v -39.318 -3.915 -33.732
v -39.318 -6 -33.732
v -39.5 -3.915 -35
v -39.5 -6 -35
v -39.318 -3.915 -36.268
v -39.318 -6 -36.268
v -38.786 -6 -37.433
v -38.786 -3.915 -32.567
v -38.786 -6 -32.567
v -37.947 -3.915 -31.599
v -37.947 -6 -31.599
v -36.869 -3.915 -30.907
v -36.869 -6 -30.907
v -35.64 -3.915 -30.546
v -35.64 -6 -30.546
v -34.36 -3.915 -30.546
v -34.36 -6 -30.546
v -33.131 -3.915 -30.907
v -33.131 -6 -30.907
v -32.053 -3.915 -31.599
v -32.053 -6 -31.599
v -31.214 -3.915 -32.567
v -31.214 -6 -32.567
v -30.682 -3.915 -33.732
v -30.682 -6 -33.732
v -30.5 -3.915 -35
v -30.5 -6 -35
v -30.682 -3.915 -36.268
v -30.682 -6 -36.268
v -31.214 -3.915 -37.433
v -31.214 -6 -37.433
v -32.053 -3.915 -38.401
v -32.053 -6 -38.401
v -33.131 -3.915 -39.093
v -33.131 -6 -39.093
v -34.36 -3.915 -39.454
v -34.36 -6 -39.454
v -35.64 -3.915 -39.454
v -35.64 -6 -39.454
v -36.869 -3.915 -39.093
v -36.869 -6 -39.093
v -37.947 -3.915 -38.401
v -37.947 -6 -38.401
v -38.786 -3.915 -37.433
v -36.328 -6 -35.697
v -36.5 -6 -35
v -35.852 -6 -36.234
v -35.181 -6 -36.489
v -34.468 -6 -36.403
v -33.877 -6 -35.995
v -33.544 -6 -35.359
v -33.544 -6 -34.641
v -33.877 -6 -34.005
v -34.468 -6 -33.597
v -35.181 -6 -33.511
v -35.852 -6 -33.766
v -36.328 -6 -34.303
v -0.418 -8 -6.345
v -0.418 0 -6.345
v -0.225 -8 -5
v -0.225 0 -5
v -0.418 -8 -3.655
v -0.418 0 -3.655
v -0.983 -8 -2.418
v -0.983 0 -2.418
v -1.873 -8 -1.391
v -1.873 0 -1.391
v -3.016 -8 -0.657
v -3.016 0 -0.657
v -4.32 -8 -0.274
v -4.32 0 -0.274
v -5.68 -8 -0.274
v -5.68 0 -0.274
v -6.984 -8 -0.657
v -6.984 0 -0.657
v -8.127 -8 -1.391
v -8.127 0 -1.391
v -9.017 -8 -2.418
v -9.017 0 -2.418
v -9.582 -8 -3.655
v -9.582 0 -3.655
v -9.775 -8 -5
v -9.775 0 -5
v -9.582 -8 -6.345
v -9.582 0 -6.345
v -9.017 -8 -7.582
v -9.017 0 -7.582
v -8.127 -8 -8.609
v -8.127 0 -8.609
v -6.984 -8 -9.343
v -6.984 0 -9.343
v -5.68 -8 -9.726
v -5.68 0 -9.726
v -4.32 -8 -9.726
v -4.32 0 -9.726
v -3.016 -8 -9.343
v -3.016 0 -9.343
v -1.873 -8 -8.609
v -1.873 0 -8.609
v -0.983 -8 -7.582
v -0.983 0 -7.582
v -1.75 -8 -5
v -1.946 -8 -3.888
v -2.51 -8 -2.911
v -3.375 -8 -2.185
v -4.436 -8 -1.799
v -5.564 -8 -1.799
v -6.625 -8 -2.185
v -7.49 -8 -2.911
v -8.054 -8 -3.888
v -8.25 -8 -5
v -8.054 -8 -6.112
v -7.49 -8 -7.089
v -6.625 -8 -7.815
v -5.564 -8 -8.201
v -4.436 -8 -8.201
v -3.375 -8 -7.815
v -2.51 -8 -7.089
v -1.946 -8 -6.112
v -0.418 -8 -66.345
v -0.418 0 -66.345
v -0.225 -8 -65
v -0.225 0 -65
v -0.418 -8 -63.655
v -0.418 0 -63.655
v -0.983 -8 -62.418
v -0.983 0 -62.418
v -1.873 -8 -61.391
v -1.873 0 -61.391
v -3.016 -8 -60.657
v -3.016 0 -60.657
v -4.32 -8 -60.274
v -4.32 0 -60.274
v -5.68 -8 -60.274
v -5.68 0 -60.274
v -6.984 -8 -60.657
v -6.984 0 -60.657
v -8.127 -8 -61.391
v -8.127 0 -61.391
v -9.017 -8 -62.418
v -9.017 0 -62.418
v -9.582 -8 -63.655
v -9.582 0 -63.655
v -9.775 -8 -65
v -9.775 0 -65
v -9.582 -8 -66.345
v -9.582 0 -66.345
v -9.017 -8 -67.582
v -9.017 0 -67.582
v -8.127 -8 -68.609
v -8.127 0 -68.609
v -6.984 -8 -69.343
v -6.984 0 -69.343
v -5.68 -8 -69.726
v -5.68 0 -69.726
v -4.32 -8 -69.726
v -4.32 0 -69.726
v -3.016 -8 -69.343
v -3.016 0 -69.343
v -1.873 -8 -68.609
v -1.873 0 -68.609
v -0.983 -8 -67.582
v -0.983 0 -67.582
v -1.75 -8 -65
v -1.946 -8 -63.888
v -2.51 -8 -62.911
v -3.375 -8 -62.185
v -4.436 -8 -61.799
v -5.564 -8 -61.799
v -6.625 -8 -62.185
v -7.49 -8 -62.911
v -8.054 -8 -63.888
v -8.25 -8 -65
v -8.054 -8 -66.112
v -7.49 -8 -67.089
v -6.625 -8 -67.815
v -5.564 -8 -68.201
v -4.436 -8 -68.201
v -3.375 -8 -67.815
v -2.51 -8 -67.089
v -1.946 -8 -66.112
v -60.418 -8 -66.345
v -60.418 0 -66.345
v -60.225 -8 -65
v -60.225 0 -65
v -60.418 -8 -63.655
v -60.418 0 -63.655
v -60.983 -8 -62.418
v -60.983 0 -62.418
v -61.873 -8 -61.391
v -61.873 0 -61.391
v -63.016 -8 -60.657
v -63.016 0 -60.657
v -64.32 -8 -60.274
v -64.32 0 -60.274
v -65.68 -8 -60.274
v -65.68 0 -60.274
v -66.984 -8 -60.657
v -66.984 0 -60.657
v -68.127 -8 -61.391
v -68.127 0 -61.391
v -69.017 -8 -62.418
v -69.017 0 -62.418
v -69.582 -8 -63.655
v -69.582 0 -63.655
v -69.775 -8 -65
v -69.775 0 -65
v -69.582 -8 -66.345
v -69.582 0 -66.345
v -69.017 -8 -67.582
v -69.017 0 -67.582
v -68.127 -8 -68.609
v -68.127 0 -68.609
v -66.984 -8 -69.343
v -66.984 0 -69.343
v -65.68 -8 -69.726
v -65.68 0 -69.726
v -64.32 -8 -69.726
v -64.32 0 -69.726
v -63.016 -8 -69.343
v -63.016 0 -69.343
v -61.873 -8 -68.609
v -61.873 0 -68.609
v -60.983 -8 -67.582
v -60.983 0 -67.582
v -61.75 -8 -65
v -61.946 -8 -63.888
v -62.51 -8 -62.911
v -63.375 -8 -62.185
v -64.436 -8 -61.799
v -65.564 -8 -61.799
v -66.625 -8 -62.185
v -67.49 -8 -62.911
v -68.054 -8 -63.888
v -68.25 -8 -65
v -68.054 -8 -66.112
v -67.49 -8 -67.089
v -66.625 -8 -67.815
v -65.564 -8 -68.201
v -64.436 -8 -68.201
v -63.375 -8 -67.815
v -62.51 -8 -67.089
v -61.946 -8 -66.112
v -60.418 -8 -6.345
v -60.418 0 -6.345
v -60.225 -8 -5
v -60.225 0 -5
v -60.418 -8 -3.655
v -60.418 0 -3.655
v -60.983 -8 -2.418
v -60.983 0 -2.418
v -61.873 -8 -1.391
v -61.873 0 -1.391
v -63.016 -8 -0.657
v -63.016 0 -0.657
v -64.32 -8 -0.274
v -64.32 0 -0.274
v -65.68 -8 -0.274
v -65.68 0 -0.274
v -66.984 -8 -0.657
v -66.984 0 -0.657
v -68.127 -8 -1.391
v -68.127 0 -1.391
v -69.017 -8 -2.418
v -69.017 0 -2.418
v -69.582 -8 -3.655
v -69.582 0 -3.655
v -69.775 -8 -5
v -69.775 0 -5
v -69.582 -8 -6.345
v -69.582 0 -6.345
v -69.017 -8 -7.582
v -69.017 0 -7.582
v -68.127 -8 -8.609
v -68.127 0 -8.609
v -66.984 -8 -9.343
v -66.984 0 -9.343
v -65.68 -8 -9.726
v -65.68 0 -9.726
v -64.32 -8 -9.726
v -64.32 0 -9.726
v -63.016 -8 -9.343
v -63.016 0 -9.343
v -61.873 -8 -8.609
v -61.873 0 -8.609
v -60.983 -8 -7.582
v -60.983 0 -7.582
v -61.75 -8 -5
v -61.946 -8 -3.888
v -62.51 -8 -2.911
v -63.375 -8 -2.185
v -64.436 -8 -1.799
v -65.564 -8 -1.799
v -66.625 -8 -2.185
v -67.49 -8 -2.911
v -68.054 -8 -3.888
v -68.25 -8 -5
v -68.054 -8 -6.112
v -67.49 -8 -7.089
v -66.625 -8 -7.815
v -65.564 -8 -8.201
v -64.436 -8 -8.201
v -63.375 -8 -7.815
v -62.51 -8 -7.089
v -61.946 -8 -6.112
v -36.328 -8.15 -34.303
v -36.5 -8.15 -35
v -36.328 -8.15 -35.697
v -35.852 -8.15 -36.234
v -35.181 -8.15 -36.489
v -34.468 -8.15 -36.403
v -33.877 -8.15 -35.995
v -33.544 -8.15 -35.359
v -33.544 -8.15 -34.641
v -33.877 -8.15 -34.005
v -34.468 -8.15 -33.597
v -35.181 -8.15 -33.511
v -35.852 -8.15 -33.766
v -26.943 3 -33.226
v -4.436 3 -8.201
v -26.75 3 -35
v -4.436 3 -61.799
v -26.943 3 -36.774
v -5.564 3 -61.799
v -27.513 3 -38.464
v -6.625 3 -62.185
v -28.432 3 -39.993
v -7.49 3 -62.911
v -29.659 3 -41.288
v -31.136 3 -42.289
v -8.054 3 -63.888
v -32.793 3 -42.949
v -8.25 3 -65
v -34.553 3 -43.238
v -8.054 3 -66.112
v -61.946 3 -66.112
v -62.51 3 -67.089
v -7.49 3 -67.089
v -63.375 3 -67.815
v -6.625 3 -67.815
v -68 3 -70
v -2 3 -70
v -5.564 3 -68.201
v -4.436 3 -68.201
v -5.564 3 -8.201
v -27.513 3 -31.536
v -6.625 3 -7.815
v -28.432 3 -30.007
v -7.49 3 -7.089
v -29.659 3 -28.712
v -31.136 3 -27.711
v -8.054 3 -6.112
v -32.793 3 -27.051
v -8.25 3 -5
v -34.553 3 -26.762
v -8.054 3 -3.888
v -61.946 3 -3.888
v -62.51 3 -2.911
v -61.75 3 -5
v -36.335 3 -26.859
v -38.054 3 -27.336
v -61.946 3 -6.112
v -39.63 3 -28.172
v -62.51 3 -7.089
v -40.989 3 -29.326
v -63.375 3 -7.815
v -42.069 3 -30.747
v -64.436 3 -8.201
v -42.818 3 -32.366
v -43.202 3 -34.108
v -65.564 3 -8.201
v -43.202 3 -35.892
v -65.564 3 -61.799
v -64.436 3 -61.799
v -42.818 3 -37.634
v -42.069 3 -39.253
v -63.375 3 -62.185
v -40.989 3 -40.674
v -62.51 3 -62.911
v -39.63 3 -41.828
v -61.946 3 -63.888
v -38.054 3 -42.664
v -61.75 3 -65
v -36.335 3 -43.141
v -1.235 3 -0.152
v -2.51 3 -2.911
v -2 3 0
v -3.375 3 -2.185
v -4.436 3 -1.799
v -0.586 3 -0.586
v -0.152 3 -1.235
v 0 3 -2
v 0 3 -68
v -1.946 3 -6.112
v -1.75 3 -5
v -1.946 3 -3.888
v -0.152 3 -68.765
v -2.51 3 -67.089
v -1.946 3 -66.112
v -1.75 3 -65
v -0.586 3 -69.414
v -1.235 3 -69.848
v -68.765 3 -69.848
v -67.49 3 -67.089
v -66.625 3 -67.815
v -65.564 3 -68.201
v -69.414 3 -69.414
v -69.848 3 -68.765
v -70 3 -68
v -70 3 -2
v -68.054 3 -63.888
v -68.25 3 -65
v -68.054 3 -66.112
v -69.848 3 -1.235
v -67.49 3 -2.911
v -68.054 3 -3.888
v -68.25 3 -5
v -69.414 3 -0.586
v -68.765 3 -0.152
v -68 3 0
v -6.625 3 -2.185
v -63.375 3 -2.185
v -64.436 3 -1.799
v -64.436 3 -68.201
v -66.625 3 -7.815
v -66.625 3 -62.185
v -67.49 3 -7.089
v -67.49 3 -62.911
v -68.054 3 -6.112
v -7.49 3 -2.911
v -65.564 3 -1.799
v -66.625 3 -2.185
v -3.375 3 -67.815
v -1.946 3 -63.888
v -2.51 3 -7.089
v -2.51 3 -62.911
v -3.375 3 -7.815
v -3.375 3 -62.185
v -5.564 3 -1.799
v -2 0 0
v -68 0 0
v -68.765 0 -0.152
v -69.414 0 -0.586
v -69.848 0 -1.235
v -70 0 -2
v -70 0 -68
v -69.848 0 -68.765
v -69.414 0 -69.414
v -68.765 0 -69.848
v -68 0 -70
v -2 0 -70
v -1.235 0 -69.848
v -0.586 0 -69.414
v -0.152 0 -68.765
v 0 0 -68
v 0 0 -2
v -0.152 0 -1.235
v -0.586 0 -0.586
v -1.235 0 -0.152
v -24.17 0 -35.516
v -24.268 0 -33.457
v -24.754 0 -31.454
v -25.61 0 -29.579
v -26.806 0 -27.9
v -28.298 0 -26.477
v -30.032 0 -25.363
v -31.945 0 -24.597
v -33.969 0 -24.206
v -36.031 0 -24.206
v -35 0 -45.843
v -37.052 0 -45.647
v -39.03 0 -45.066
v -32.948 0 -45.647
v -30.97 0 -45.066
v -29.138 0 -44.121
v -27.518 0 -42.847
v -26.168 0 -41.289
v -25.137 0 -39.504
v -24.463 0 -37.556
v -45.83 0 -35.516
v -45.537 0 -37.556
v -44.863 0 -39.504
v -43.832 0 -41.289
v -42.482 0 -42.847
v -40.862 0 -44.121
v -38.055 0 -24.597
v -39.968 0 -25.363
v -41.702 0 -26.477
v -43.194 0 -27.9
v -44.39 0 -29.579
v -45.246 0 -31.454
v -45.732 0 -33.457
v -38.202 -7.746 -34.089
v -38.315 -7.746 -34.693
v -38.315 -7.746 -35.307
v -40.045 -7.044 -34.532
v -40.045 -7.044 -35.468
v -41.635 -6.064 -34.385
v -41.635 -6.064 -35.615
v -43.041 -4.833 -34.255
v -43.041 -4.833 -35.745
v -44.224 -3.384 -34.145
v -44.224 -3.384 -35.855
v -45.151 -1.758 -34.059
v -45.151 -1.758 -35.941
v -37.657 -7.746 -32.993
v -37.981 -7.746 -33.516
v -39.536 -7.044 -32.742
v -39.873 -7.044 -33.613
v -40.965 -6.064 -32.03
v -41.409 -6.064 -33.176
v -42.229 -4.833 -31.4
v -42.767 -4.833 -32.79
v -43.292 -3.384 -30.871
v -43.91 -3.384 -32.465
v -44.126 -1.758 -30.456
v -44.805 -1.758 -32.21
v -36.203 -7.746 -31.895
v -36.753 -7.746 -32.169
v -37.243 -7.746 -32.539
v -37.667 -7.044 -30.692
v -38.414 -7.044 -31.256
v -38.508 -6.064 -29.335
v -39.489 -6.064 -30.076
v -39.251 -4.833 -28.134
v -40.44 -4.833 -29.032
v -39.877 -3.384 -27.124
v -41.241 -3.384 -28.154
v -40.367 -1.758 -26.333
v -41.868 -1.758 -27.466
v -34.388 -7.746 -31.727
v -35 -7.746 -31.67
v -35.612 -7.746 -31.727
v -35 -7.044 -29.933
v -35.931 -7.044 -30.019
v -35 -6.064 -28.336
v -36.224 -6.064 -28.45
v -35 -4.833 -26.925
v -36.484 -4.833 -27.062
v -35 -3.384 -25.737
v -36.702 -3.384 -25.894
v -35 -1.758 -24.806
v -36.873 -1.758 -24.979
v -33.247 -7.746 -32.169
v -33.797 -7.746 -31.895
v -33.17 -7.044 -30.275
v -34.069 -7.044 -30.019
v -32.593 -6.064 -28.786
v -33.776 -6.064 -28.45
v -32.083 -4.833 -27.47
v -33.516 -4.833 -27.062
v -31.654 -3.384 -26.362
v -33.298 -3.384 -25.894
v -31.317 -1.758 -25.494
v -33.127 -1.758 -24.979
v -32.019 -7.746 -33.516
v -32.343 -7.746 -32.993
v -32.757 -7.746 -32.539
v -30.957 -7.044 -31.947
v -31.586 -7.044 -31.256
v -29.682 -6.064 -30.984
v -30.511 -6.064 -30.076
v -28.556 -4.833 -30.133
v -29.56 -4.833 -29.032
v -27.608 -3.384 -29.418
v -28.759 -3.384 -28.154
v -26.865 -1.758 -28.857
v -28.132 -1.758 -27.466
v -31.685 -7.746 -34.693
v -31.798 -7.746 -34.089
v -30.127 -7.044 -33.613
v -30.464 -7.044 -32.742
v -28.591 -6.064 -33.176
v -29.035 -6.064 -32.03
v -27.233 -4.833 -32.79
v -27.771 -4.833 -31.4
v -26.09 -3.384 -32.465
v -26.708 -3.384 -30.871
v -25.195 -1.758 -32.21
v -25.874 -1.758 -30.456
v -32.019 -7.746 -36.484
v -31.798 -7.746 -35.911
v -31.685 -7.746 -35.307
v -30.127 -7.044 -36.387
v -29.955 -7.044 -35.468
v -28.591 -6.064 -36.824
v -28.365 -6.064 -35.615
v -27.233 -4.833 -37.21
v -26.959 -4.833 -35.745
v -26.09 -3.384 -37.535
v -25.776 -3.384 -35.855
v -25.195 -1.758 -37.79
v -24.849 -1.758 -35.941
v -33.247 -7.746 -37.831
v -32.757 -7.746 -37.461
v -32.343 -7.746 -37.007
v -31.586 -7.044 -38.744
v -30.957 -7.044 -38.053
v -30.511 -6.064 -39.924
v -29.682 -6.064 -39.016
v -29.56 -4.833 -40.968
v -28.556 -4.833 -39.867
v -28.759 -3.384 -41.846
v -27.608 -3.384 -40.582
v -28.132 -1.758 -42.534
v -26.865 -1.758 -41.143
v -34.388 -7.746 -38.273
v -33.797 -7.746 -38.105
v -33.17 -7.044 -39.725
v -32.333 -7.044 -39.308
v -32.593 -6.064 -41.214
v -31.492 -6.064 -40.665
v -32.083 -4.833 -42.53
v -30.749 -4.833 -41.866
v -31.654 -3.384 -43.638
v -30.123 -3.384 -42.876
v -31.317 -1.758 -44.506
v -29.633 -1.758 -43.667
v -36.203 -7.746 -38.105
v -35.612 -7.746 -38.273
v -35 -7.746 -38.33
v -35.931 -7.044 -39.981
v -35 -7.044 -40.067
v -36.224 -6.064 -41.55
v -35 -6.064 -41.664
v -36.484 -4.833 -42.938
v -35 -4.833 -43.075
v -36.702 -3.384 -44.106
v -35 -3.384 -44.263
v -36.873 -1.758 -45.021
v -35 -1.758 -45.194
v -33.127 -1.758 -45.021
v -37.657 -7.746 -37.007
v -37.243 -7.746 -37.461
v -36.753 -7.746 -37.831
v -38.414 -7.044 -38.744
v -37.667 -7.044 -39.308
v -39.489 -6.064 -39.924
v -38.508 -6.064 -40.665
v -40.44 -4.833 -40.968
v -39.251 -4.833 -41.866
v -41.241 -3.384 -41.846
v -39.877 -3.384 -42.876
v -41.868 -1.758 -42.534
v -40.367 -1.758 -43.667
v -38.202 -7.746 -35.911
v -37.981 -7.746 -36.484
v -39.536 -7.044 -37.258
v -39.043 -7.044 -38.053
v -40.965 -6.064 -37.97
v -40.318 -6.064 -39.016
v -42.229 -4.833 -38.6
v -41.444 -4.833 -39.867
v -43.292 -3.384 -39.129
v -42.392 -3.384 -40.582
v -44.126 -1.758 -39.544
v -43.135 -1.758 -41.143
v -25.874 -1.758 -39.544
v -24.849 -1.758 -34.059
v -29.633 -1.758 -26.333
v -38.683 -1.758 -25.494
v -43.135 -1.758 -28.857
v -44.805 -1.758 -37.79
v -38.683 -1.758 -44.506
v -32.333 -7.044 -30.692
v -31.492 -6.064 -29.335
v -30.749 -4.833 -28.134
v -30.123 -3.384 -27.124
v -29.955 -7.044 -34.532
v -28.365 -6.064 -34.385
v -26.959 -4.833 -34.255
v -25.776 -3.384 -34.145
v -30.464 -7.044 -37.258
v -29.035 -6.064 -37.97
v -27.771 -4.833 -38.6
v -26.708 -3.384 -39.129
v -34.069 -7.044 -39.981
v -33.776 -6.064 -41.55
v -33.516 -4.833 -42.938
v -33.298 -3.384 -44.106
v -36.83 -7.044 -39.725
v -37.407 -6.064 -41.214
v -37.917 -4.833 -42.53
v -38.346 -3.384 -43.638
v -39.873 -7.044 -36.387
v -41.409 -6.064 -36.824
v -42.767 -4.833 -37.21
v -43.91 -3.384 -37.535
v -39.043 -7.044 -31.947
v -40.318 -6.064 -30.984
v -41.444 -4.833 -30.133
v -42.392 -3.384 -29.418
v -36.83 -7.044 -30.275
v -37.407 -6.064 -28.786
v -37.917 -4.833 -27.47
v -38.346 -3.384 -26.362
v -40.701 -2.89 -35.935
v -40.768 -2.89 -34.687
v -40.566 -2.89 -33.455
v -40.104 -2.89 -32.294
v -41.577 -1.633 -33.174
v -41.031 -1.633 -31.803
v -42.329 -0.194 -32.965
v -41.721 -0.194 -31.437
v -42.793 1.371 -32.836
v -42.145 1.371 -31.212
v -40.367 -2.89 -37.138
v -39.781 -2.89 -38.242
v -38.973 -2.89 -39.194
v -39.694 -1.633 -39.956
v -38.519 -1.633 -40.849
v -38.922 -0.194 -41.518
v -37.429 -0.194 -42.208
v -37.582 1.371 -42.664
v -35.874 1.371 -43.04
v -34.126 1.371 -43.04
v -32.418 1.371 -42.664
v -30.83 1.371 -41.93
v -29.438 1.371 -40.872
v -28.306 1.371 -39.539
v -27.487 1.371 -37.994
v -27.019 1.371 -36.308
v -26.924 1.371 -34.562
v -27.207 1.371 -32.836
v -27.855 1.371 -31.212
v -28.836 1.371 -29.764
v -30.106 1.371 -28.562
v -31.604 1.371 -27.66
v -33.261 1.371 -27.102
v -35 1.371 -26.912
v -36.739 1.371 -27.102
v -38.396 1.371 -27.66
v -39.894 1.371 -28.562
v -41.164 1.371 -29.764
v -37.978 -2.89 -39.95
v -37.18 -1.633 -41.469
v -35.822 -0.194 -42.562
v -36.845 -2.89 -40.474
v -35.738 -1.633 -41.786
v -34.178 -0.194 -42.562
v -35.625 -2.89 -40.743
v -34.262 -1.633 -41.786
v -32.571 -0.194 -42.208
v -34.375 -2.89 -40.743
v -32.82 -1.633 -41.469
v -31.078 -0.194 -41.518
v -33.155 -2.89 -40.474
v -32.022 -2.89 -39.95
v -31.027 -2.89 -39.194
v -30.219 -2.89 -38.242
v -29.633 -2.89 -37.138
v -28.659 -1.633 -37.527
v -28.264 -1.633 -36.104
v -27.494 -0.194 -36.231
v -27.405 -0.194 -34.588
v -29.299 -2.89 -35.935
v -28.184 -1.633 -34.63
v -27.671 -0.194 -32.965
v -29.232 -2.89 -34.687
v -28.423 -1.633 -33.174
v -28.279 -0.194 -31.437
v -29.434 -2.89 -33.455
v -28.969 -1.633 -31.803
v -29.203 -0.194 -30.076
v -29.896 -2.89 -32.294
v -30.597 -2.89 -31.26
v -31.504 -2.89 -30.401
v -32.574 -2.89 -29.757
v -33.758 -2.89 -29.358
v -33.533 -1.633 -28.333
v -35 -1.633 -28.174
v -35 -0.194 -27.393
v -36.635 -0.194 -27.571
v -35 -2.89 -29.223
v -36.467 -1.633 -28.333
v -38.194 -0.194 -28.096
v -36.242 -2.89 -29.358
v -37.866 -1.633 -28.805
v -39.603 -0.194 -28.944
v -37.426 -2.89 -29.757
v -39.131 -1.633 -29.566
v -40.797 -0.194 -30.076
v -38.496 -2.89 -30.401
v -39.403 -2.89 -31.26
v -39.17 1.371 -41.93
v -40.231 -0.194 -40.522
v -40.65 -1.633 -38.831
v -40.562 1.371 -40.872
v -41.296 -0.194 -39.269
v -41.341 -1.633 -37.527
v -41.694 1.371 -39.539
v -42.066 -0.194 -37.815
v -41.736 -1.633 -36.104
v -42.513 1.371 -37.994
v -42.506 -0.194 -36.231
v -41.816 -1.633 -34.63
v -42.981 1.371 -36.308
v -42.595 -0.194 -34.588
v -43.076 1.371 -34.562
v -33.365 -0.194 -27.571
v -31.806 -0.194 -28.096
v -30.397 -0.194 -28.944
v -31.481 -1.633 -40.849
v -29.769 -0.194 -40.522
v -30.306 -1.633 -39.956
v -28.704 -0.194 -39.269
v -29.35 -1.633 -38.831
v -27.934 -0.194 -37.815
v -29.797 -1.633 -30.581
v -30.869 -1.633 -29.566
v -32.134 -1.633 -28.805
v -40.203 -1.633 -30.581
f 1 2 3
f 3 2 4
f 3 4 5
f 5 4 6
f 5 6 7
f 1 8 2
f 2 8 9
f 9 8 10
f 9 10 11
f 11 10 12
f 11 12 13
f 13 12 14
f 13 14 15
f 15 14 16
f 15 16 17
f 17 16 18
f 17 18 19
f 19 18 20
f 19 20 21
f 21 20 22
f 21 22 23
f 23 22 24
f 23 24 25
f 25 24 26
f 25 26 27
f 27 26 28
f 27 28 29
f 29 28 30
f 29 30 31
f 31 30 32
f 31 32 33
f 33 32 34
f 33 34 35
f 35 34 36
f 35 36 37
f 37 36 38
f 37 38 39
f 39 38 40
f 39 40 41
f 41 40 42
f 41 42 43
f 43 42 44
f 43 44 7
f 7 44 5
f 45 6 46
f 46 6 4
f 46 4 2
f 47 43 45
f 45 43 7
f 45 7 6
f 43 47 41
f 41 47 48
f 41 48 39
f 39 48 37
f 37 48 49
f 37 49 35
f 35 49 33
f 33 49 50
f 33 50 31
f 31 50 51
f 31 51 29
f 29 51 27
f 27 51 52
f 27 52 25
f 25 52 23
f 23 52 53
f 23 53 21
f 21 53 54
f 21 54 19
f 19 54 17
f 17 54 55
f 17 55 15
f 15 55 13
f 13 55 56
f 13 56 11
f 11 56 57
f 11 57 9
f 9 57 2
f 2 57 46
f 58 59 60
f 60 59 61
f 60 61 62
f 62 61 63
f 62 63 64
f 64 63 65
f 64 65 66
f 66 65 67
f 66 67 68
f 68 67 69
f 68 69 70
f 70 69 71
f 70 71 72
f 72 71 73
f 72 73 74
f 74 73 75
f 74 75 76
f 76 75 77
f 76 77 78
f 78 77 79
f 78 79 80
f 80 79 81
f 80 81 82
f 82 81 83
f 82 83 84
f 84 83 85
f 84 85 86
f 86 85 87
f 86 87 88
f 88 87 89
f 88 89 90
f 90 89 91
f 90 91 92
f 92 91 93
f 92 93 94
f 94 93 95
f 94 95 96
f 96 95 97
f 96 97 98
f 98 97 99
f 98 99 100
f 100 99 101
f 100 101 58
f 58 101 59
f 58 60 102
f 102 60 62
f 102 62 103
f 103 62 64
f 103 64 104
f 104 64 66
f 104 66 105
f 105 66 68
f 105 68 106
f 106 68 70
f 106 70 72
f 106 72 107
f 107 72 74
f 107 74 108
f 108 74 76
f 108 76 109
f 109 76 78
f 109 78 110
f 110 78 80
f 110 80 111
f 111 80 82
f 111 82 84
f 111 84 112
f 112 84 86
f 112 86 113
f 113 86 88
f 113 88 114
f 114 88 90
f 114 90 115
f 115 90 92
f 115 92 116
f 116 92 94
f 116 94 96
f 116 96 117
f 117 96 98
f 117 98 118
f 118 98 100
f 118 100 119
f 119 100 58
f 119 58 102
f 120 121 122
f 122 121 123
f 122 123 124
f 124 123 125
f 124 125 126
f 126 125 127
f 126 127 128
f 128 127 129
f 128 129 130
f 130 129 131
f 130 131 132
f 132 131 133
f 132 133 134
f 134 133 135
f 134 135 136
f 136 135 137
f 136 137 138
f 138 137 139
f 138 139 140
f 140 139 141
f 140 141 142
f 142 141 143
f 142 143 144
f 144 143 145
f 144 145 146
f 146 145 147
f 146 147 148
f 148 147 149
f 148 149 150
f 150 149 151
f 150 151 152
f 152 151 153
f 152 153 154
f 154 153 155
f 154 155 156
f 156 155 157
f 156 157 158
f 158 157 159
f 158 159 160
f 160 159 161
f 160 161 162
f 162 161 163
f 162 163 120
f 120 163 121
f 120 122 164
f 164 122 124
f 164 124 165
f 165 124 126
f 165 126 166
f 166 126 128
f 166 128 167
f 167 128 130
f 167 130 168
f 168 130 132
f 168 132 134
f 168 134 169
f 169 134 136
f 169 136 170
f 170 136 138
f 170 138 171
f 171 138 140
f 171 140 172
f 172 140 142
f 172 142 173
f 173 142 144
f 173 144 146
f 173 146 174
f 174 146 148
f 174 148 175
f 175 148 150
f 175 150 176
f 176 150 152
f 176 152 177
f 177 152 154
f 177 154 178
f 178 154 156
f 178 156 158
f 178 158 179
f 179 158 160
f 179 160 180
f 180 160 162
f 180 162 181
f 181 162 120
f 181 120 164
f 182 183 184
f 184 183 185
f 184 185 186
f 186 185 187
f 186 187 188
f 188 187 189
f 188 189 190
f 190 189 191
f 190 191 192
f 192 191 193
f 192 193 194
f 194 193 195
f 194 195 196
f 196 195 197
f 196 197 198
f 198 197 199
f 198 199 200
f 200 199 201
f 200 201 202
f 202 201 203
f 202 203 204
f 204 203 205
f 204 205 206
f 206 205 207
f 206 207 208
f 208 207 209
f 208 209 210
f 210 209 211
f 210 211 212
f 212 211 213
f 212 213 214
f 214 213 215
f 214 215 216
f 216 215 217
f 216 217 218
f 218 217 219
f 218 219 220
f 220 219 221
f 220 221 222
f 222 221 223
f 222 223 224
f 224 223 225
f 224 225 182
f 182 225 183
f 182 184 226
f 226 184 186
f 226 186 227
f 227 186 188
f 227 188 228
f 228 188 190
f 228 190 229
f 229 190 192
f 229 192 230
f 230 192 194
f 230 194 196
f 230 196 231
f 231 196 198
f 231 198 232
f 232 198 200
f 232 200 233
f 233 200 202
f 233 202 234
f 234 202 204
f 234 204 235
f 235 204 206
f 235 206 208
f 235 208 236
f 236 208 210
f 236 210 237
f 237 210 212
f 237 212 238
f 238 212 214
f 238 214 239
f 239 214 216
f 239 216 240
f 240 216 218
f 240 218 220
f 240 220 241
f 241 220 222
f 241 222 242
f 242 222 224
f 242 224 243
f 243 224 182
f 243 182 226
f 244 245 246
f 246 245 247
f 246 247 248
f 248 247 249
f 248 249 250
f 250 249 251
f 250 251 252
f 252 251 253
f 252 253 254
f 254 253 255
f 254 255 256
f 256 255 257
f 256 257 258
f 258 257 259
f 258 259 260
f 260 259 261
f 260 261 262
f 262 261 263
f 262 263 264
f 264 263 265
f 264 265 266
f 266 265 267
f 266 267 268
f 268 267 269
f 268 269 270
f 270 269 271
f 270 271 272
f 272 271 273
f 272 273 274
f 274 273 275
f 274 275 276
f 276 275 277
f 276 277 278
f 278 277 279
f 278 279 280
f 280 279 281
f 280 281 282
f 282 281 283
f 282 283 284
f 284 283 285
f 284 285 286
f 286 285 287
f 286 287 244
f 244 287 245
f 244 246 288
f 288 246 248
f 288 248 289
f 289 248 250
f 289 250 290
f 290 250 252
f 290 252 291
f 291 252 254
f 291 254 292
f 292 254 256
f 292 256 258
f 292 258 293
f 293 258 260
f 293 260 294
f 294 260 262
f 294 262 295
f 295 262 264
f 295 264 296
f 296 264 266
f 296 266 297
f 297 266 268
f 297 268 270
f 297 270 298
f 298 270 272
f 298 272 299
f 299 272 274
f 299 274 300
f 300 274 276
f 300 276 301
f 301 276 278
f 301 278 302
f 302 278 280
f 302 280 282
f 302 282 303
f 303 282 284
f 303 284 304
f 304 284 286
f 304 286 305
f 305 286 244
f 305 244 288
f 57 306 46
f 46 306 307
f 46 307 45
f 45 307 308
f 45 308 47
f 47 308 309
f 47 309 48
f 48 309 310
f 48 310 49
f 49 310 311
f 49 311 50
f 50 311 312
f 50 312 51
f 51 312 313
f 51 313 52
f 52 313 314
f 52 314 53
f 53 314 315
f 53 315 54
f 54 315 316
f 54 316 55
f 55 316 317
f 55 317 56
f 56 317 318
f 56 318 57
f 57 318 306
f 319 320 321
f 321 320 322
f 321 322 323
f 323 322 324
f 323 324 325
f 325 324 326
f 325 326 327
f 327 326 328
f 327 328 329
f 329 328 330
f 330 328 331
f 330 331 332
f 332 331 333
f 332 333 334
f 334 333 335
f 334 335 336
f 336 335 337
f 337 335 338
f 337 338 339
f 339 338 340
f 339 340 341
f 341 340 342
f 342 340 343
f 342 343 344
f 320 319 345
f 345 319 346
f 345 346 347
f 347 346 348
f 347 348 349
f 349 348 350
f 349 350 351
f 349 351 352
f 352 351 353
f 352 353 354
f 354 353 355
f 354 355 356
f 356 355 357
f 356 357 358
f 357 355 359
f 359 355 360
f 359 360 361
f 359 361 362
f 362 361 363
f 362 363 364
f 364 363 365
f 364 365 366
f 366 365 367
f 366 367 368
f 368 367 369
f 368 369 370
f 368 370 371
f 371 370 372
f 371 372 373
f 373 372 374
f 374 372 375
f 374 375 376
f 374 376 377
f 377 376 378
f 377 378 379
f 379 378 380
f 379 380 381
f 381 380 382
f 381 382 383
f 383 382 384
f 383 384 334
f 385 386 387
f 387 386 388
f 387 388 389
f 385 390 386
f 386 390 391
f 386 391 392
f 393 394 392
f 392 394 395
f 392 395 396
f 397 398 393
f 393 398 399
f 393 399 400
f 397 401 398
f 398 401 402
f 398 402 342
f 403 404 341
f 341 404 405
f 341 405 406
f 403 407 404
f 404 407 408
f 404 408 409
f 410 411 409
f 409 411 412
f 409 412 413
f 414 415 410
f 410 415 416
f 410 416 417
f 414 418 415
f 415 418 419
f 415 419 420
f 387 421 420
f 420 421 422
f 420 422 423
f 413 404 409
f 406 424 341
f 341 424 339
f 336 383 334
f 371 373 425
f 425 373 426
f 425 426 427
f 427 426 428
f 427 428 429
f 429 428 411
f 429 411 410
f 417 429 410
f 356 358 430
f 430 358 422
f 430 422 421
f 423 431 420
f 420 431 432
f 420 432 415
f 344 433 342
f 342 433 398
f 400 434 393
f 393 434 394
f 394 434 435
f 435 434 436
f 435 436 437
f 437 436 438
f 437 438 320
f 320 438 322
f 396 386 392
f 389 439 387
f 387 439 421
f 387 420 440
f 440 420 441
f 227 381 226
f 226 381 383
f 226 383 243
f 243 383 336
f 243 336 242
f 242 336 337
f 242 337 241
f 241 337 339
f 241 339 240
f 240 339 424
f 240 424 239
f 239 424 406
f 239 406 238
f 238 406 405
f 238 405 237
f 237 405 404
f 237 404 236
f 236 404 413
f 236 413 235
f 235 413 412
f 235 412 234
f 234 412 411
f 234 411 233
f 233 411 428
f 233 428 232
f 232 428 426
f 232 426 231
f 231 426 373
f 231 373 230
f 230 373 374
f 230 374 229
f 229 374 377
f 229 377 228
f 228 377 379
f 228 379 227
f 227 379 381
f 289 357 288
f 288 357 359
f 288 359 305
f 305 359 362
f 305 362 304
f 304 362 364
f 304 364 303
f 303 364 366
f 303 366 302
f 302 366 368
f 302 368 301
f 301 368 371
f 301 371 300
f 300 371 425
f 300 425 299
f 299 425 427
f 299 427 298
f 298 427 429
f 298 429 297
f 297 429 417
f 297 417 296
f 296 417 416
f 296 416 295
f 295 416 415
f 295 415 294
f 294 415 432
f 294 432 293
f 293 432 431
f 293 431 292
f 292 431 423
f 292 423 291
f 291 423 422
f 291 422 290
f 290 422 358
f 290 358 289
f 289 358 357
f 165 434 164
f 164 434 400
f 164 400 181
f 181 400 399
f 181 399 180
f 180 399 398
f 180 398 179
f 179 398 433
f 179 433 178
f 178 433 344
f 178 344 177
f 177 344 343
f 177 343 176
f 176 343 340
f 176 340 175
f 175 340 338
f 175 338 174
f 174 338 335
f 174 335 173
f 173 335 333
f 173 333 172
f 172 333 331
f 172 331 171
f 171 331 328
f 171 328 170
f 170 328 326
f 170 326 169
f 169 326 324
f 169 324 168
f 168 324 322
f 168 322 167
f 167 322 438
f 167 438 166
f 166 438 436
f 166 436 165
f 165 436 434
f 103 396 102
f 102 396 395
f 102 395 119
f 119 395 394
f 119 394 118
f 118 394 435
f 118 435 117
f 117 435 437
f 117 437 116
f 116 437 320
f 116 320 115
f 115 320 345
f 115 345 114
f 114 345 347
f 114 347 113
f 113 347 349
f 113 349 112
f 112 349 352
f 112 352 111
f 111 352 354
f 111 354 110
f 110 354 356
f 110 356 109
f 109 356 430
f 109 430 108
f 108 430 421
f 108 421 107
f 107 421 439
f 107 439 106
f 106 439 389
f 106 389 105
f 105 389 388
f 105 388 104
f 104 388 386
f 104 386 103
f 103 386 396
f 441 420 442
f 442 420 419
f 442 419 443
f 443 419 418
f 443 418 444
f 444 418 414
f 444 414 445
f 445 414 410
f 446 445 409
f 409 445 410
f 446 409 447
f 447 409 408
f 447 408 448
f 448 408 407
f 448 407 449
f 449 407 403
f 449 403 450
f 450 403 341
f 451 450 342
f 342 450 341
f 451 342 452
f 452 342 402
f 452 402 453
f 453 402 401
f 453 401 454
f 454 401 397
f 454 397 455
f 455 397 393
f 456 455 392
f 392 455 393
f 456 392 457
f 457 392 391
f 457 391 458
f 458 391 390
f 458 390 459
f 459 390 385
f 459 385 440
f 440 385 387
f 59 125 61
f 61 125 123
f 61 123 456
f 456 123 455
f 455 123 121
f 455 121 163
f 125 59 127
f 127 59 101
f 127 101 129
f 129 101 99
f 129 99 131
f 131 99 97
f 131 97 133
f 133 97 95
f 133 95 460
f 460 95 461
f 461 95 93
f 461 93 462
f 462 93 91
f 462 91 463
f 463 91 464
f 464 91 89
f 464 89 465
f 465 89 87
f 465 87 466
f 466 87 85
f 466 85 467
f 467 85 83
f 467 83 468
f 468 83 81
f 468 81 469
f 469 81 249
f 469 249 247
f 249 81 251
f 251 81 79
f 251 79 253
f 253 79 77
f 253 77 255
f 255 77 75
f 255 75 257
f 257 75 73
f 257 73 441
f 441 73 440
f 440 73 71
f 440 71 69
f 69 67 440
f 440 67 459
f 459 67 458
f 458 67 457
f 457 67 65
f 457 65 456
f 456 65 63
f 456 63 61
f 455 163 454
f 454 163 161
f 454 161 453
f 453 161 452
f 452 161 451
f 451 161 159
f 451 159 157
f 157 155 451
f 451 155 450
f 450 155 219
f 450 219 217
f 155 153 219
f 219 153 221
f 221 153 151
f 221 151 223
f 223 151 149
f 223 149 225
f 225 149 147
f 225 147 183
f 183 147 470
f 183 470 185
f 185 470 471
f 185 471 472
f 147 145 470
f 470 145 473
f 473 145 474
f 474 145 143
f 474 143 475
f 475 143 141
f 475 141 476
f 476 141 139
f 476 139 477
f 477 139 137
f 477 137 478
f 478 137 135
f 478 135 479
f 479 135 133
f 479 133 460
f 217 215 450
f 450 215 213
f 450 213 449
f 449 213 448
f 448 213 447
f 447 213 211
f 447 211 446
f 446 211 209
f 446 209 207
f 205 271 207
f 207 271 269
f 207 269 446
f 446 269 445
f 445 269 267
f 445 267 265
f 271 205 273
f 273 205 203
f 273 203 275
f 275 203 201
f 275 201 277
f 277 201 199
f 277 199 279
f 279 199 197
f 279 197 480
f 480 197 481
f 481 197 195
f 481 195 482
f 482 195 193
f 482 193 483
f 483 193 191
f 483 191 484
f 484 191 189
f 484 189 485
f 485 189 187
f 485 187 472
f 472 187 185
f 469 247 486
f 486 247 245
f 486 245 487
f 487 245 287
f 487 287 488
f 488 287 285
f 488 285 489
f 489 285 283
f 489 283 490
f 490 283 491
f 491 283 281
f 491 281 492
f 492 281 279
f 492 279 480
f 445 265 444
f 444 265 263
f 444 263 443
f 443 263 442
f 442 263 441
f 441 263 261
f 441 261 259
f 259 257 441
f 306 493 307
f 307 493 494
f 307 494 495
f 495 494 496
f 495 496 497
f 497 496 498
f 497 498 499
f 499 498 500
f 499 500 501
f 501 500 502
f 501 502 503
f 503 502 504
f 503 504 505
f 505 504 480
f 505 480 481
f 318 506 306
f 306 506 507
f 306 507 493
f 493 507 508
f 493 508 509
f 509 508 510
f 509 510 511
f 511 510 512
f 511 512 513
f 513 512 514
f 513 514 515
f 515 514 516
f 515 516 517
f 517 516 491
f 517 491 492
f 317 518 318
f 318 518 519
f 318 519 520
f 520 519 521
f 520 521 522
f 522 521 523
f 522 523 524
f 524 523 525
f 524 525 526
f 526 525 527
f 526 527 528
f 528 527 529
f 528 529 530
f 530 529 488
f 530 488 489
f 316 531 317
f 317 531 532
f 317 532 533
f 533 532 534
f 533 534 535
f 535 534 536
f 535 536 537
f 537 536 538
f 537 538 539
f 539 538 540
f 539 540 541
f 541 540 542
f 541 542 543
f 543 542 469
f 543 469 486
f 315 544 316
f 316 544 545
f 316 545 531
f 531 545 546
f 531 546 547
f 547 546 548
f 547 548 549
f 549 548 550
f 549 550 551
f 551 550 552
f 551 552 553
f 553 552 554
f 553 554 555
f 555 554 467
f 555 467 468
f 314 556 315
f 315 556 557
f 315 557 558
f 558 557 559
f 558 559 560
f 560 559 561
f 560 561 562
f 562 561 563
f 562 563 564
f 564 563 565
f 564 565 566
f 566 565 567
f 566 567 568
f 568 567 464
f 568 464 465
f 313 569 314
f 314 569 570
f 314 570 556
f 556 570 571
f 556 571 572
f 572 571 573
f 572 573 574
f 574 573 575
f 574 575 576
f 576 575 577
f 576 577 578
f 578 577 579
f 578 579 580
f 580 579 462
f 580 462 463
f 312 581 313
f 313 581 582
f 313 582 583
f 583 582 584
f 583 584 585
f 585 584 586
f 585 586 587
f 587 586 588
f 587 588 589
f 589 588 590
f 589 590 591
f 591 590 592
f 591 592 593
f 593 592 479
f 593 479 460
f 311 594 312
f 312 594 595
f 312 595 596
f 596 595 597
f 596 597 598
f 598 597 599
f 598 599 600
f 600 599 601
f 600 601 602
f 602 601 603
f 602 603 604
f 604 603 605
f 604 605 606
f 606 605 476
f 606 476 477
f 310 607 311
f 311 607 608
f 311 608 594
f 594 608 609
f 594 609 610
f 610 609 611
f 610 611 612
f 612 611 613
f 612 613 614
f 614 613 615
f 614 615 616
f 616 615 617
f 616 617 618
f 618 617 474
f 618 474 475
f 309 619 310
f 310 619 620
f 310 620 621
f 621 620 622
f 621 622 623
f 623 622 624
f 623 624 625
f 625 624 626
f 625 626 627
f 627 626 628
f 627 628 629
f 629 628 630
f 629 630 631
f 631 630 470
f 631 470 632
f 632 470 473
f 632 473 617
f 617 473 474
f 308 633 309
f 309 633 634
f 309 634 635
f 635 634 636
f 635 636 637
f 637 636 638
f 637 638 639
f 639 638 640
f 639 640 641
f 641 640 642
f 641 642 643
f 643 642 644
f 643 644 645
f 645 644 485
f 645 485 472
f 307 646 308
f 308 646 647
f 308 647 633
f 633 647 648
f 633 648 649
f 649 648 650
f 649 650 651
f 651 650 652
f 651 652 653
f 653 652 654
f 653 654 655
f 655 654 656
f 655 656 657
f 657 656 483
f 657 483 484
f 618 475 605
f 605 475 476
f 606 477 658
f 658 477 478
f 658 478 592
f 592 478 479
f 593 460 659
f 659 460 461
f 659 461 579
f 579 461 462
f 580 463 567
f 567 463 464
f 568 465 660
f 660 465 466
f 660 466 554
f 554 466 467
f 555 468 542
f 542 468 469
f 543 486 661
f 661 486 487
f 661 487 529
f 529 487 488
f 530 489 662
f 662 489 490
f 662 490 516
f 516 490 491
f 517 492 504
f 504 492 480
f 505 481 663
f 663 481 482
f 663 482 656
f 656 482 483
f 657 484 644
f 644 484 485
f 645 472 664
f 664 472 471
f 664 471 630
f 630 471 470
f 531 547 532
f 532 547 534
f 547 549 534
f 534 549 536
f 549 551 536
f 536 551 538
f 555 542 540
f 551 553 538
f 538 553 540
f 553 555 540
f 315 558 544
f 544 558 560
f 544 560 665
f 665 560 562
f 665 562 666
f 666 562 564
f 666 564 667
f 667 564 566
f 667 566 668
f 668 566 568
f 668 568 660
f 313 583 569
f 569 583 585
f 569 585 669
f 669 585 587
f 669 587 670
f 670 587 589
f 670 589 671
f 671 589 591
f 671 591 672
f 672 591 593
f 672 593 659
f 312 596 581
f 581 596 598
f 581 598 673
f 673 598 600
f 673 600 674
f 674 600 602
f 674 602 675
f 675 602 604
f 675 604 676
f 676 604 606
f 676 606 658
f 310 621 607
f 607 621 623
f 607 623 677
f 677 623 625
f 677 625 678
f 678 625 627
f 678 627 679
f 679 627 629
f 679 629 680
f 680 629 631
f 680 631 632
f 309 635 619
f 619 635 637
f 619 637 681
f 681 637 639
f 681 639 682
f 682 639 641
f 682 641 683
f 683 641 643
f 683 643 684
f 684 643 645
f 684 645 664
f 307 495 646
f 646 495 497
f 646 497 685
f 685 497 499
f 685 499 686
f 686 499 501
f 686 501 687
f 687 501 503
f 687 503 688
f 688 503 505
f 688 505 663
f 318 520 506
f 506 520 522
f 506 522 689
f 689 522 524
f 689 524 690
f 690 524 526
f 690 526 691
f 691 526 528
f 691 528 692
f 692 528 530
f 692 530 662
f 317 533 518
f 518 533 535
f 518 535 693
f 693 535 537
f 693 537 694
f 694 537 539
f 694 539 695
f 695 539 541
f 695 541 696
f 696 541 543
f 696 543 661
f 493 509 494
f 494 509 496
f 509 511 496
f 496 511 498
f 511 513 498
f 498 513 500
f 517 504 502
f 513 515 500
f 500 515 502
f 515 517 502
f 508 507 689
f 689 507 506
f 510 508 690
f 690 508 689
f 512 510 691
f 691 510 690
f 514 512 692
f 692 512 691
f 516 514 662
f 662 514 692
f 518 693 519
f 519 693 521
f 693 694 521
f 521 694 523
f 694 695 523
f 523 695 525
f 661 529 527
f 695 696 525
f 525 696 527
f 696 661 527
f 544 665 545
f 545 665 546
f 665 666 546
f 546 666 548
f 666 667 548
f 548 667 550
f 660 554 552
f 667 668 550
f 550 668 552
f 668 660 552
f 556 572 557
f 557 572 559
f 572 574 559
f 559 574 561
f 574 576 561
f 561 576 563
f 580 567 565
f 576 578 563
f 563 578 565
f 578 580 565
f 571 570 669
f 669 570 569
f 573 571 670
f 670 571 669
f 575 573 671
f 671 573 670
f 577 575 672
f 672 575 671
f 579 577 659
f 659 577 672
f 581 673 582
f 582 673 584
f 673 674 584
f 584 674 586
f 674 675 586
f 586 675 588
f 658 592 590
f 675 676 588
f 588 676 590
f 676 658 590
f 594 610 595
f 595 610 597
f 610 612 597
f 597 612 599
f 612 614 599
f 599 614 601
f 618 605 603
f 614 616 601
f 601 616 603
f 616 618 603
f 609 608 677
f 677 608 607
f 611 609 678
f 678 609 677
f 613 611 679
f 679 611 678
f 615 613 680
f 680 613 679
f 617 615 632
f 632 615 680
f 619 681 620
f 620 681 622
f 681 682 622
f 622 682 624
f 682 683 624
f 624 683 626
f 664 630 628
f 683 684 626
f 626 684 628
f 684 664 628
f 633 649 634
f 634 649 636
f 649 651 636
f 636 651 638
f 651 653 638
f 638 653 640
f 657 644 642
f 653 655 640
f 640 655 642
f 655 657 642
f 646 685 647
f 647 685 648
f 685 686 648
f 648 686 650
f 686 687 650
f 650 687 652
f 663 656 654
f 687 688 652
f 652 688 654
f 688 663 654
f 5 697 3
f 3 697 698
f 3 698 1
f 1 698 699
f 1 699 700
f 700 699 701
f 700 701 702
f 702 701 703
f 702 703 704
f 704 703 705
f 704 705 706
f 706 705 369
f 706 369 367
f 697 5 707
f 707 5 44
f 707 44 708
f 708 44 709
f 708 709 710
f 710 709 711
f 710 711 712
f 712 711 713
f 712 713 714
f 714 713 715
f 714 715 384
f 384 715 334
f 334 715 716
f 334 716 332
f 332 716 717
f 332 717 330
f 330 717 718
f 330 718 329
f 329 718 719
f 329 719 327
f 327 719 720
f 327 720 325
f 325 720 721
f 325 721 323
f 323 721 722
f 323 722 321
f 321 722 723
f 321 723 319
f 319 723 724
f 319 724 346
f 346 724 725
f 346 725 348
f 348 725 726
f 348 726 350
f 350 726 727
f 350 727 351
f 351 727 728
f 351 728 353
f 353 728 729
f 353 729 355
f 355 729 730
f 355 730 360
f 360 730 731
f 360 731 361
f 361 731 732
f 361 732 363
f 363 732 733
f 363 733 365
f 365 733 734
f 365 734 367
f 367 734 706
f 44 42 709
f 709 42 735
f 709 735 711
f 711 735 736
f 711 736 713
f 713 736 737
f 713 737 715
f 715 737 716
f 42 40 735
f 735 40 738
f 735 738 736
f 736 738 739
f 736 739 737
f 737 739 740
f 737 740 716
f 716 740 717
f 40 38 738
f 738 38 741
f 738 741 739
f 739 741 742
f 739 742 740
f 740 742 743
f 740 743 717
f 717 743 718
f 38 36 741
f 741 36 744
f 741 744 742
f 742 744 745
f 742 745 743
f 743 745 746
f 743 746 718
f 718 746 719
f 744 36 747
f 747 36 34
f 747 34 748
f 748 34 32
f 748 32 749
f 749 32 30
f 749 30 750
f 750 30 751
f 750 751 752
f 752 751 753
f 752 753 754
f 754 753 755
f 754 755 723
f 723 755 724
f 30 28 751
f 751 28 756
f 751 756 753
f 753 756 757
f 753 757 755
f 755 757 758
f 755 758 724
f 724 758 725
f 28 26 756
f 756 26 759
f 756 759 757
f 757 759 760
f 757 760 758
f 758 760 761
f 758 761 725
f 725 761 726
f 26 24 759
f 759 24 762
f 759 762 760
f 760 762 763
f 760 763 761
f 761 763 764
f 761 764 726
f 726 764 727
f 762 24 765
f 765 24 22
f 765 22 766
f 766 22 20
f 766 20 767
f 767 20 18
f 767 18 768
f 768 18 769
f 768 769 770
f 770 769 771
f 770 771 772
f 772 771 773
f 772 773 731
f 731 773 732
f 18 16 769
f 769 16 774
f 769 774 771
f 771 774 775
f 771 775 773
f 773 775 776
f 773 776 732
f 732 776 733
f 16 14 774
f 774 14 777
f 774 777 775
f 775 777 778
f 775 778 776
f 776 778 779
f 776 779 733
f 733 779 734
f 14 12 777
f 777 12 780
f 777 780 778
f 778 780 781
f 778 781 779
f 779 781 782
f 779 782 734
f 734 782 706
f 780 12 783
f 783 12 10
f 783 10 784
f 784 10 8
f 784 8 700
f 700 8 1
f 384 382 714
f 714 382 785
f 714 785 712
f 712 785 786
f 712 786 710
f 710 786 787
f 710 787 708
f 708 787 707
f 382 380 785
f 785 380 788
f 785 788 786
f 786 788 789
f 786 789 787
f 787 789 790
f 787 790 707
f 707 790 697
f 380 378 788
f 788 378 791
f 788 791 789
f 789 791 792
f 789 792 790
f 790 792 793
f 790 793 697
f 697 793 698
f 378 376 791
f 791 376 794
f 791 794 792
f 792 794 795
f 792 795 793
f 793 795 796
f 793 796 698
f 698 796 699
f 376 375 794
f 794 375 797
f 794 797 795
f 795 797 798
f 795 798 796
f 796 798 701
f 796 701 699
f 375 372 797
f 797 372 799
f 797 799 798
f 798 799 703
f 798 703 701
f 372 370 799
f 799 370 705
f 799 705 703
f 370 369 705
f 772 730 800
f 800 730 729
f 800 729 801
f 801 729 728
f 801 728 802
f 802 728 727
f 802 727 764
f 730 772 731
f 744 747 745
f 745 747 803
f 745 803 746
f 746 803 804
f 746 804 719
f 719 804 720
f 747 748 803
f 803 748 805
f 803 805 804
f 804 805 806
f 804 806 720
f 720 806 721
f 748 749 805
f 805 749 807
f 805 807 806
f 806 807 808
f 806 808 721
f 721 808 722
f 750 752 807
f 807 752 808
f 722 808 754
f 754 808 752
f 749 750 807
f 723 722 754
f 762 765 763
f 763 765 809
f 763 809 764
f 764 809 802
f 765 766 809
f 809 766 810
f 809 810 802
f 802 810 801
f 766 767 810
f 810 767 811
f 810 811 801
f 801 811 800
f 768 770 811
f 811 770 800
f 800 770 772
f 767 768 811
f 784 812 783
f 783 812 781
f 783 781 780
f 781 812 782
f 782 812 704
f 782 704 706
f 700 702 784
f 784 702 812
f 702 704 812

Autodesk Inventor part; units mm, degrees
ref_plane "YZ Plane" through (0, 0, 0) normal (1, 0, 0) x (0, 1, 0)
ref_plane "XZ Plane" through (0, 0, 0) normal (0, 1, 0) x (-1, 0, 0)
ref_plane "XY Plane" through (0, 0, 0) normal (0, 0, 1) x (1, 0, 0)
sketch "Sketch1" plane through (0, 0, 0) normal (0, 1, 0) x (-1, 0, 0)
  line L0 (0, 0) -> (70, 0)
  line L1 (70, 0) -> (70, -70)
  line L2 (70, -70) -> (0, -70)
  line L3 (0, -70) -> (0, 0)
  circle A0 centre (5, -5) radius 3.25
  circle A1 centre (5, -65) radius 3.25
  circle A2 centre (65, -5) radius 3.25
  circle A3 centre (65, -65) radius 3.25
  dimension "d0" = 70
  dimension "d1" = 6.5
  dimension "d4" = 60
  dimension "d7" = 60
  dimension "d10" = 5
  dimension "d11" = 5
extrude "Extrusion1" add sketch "Sketch1" along normal blind 3
fillet "Fillet1" radius 2 4 edges at (-70, 1.5, 0) (-70, 1.5, -70) (0, 1.5, -70) (0, 1.5, 0)
sketch "Sketch2" plane through (0, 3, 0) normal (0, 1, 0) x (1, 0, 0)
  line L0 (-70, 68) -> (-70, 2) construction
  line L1 (-70, 35) -> (0, 35) construction
  line L2 (0, 2) -> (0, 68) construction
  line L3 (-68, 0) -> (-2, 0) construction
  line L4 (-35, 0) -> (-35, 70) construction
  line L5 (-2, 70) -> (-68, 70) construction
  arc A0 (-35, 43.25) -> (-35, 26.75) centre (-35, 35) ccw
  arc A1 (-35, 46.25) -> (-35, 23.75) centre (-35, 35) ccw
  line L6 (-35, 23.75) -> (-35, 26.75)
  line L7 (-35, 43.25) -> (-35, 46.25)
  point P0 (0, 0)
  dimension "d17" = 8.25
  dimension "d19" = 3
revolve "Revolution1" add sketch "Sketch2" angle 180 about axis through (-35, 3, 0) along (0, 0, 1)
sketch "Sketch3" plane through (0, 3, 0) normal (0, 1, 0) x (1, 0, 0)
  circle A0 centre (-35, 35) radius 8.25
  circle A1 centre (-35, 35) radius 7.6852 projected
  line L0 (-43.25, 35) -> (-26.75, 35)
  point P0 (0, 0)
  point P1 (-42.6852, 35)
  point P2 (-27.3148, 35)
  dimension "d40" = 16.5
revolve "Revolution2" cut sketch "Sketch3" angle 180 about axis through (-43.25, 3, -35) along (-1, 0, 0) picked at (-42.9818, 35.6581) picked at (-32.6573, 36.8036) contours L0 A1 A0 | L0 A1
sketch "Sketch4" plane through (0, 3, 0) normal (0, 1, 0) x (1, 0, 0)
  circle A0 centre (-35, 35) radius 7.6852 projected
  point P0 (0, 0)
hole "Hole1" at (-35, 3, -35) direction (0, -1, 0) diameter 3 end through all
sketch "Sketch5" plane through (0, 0, 0) normal (0, -1, 0) x (1, 0, 0)
  circle A0 centre (-5, -5) radius 3.25 projected
  circle A1 centre (-5, -5) radius 4.775
  circle A2 centre (-5, -5) radius 3.25
  line L0 (-68, 0) -> (-2, 0) projected
  line L1 (0, -2) -> (0, -68) projected
  circle A3 centre (-65, -5) radius 4.775
  circle A4 centre (-65, -5) radius 3.25
  circle A5 centre (-5, -65) radius 4.775
  circle A6 centre (-5, -65) radius 3.25
  circle A7 centre (-65, -65) radius 4.775
  circle A8 centre (-65, -65) radius 3.25
  point P0 (0, 0)
  dimension "d29" = 9.55
  dimension "d32" = 60
  dimension "d35" = 60
extrude "Extrusion2" add sketch "Sketch5" along normal blind 8
sketch "Sketch6" plane through (0, 3, 0) normal (0, 1, 0) x (1, 0, 0)
  circle A0 centre (-35, 35) radius 1.5 projected
  circle A1 centre (-35, 35) radius 4.5
  point P0 (0, 0)
  dimension "d41" = 9
extrude "Extrusion3" cut sketch "Sketch6" against normal blind 9 contours A0 | A1
equation "\"d0\" = cradle_width"
equation "\"d1\" = rod_diameter + rod_free_tolerance"
equation "\"d4\" = rod_dist"
equation "\"d7\" = rod_dist"
equation "\"d10\" = 0.5 * cradle_width - 0.5 * rod_dist"
equation "\"d11\" = 0.5 * cradle_width - 0.5 * rod_dist"
equation "\"d12\" = cradle_holder_thickness"
equation "\"d17\" = 0.5 * tube_diameter"
equation "\"d19\" = cradle_holder_thickness"
equation "\"d40\" = tube_diameter"
equation "\"d22\" = needle_hole_diameter"
equation "\"d29\" = post_diameter - post_wall_diameter"
equation "\"d32\" = rod_dist"
equation "\"d35\" = rod_dist"
equation "\"d38\" = cradle_holder_peg_depth"
equation "\"cradle_width\" = 70"
equation "\"cradle_holder_peg_depth\" = 8"
equation "\"tube_diameter\" = 16.5"
equation "\"rod_dist\" = 60"
equation "\"rod_diameter\" = 6"
equation "\"rod_free_tolerance\" = 0.5"
equation "\"cradle_holder_thickness\" = 3"
equation "\"needle_hole_diameter\" = 3"
equation "\"post_diameter\" = 10.2"
equation "\"post_wall_diameter\" = 0.65"
properties part number "cradle_holder_with_septa"
